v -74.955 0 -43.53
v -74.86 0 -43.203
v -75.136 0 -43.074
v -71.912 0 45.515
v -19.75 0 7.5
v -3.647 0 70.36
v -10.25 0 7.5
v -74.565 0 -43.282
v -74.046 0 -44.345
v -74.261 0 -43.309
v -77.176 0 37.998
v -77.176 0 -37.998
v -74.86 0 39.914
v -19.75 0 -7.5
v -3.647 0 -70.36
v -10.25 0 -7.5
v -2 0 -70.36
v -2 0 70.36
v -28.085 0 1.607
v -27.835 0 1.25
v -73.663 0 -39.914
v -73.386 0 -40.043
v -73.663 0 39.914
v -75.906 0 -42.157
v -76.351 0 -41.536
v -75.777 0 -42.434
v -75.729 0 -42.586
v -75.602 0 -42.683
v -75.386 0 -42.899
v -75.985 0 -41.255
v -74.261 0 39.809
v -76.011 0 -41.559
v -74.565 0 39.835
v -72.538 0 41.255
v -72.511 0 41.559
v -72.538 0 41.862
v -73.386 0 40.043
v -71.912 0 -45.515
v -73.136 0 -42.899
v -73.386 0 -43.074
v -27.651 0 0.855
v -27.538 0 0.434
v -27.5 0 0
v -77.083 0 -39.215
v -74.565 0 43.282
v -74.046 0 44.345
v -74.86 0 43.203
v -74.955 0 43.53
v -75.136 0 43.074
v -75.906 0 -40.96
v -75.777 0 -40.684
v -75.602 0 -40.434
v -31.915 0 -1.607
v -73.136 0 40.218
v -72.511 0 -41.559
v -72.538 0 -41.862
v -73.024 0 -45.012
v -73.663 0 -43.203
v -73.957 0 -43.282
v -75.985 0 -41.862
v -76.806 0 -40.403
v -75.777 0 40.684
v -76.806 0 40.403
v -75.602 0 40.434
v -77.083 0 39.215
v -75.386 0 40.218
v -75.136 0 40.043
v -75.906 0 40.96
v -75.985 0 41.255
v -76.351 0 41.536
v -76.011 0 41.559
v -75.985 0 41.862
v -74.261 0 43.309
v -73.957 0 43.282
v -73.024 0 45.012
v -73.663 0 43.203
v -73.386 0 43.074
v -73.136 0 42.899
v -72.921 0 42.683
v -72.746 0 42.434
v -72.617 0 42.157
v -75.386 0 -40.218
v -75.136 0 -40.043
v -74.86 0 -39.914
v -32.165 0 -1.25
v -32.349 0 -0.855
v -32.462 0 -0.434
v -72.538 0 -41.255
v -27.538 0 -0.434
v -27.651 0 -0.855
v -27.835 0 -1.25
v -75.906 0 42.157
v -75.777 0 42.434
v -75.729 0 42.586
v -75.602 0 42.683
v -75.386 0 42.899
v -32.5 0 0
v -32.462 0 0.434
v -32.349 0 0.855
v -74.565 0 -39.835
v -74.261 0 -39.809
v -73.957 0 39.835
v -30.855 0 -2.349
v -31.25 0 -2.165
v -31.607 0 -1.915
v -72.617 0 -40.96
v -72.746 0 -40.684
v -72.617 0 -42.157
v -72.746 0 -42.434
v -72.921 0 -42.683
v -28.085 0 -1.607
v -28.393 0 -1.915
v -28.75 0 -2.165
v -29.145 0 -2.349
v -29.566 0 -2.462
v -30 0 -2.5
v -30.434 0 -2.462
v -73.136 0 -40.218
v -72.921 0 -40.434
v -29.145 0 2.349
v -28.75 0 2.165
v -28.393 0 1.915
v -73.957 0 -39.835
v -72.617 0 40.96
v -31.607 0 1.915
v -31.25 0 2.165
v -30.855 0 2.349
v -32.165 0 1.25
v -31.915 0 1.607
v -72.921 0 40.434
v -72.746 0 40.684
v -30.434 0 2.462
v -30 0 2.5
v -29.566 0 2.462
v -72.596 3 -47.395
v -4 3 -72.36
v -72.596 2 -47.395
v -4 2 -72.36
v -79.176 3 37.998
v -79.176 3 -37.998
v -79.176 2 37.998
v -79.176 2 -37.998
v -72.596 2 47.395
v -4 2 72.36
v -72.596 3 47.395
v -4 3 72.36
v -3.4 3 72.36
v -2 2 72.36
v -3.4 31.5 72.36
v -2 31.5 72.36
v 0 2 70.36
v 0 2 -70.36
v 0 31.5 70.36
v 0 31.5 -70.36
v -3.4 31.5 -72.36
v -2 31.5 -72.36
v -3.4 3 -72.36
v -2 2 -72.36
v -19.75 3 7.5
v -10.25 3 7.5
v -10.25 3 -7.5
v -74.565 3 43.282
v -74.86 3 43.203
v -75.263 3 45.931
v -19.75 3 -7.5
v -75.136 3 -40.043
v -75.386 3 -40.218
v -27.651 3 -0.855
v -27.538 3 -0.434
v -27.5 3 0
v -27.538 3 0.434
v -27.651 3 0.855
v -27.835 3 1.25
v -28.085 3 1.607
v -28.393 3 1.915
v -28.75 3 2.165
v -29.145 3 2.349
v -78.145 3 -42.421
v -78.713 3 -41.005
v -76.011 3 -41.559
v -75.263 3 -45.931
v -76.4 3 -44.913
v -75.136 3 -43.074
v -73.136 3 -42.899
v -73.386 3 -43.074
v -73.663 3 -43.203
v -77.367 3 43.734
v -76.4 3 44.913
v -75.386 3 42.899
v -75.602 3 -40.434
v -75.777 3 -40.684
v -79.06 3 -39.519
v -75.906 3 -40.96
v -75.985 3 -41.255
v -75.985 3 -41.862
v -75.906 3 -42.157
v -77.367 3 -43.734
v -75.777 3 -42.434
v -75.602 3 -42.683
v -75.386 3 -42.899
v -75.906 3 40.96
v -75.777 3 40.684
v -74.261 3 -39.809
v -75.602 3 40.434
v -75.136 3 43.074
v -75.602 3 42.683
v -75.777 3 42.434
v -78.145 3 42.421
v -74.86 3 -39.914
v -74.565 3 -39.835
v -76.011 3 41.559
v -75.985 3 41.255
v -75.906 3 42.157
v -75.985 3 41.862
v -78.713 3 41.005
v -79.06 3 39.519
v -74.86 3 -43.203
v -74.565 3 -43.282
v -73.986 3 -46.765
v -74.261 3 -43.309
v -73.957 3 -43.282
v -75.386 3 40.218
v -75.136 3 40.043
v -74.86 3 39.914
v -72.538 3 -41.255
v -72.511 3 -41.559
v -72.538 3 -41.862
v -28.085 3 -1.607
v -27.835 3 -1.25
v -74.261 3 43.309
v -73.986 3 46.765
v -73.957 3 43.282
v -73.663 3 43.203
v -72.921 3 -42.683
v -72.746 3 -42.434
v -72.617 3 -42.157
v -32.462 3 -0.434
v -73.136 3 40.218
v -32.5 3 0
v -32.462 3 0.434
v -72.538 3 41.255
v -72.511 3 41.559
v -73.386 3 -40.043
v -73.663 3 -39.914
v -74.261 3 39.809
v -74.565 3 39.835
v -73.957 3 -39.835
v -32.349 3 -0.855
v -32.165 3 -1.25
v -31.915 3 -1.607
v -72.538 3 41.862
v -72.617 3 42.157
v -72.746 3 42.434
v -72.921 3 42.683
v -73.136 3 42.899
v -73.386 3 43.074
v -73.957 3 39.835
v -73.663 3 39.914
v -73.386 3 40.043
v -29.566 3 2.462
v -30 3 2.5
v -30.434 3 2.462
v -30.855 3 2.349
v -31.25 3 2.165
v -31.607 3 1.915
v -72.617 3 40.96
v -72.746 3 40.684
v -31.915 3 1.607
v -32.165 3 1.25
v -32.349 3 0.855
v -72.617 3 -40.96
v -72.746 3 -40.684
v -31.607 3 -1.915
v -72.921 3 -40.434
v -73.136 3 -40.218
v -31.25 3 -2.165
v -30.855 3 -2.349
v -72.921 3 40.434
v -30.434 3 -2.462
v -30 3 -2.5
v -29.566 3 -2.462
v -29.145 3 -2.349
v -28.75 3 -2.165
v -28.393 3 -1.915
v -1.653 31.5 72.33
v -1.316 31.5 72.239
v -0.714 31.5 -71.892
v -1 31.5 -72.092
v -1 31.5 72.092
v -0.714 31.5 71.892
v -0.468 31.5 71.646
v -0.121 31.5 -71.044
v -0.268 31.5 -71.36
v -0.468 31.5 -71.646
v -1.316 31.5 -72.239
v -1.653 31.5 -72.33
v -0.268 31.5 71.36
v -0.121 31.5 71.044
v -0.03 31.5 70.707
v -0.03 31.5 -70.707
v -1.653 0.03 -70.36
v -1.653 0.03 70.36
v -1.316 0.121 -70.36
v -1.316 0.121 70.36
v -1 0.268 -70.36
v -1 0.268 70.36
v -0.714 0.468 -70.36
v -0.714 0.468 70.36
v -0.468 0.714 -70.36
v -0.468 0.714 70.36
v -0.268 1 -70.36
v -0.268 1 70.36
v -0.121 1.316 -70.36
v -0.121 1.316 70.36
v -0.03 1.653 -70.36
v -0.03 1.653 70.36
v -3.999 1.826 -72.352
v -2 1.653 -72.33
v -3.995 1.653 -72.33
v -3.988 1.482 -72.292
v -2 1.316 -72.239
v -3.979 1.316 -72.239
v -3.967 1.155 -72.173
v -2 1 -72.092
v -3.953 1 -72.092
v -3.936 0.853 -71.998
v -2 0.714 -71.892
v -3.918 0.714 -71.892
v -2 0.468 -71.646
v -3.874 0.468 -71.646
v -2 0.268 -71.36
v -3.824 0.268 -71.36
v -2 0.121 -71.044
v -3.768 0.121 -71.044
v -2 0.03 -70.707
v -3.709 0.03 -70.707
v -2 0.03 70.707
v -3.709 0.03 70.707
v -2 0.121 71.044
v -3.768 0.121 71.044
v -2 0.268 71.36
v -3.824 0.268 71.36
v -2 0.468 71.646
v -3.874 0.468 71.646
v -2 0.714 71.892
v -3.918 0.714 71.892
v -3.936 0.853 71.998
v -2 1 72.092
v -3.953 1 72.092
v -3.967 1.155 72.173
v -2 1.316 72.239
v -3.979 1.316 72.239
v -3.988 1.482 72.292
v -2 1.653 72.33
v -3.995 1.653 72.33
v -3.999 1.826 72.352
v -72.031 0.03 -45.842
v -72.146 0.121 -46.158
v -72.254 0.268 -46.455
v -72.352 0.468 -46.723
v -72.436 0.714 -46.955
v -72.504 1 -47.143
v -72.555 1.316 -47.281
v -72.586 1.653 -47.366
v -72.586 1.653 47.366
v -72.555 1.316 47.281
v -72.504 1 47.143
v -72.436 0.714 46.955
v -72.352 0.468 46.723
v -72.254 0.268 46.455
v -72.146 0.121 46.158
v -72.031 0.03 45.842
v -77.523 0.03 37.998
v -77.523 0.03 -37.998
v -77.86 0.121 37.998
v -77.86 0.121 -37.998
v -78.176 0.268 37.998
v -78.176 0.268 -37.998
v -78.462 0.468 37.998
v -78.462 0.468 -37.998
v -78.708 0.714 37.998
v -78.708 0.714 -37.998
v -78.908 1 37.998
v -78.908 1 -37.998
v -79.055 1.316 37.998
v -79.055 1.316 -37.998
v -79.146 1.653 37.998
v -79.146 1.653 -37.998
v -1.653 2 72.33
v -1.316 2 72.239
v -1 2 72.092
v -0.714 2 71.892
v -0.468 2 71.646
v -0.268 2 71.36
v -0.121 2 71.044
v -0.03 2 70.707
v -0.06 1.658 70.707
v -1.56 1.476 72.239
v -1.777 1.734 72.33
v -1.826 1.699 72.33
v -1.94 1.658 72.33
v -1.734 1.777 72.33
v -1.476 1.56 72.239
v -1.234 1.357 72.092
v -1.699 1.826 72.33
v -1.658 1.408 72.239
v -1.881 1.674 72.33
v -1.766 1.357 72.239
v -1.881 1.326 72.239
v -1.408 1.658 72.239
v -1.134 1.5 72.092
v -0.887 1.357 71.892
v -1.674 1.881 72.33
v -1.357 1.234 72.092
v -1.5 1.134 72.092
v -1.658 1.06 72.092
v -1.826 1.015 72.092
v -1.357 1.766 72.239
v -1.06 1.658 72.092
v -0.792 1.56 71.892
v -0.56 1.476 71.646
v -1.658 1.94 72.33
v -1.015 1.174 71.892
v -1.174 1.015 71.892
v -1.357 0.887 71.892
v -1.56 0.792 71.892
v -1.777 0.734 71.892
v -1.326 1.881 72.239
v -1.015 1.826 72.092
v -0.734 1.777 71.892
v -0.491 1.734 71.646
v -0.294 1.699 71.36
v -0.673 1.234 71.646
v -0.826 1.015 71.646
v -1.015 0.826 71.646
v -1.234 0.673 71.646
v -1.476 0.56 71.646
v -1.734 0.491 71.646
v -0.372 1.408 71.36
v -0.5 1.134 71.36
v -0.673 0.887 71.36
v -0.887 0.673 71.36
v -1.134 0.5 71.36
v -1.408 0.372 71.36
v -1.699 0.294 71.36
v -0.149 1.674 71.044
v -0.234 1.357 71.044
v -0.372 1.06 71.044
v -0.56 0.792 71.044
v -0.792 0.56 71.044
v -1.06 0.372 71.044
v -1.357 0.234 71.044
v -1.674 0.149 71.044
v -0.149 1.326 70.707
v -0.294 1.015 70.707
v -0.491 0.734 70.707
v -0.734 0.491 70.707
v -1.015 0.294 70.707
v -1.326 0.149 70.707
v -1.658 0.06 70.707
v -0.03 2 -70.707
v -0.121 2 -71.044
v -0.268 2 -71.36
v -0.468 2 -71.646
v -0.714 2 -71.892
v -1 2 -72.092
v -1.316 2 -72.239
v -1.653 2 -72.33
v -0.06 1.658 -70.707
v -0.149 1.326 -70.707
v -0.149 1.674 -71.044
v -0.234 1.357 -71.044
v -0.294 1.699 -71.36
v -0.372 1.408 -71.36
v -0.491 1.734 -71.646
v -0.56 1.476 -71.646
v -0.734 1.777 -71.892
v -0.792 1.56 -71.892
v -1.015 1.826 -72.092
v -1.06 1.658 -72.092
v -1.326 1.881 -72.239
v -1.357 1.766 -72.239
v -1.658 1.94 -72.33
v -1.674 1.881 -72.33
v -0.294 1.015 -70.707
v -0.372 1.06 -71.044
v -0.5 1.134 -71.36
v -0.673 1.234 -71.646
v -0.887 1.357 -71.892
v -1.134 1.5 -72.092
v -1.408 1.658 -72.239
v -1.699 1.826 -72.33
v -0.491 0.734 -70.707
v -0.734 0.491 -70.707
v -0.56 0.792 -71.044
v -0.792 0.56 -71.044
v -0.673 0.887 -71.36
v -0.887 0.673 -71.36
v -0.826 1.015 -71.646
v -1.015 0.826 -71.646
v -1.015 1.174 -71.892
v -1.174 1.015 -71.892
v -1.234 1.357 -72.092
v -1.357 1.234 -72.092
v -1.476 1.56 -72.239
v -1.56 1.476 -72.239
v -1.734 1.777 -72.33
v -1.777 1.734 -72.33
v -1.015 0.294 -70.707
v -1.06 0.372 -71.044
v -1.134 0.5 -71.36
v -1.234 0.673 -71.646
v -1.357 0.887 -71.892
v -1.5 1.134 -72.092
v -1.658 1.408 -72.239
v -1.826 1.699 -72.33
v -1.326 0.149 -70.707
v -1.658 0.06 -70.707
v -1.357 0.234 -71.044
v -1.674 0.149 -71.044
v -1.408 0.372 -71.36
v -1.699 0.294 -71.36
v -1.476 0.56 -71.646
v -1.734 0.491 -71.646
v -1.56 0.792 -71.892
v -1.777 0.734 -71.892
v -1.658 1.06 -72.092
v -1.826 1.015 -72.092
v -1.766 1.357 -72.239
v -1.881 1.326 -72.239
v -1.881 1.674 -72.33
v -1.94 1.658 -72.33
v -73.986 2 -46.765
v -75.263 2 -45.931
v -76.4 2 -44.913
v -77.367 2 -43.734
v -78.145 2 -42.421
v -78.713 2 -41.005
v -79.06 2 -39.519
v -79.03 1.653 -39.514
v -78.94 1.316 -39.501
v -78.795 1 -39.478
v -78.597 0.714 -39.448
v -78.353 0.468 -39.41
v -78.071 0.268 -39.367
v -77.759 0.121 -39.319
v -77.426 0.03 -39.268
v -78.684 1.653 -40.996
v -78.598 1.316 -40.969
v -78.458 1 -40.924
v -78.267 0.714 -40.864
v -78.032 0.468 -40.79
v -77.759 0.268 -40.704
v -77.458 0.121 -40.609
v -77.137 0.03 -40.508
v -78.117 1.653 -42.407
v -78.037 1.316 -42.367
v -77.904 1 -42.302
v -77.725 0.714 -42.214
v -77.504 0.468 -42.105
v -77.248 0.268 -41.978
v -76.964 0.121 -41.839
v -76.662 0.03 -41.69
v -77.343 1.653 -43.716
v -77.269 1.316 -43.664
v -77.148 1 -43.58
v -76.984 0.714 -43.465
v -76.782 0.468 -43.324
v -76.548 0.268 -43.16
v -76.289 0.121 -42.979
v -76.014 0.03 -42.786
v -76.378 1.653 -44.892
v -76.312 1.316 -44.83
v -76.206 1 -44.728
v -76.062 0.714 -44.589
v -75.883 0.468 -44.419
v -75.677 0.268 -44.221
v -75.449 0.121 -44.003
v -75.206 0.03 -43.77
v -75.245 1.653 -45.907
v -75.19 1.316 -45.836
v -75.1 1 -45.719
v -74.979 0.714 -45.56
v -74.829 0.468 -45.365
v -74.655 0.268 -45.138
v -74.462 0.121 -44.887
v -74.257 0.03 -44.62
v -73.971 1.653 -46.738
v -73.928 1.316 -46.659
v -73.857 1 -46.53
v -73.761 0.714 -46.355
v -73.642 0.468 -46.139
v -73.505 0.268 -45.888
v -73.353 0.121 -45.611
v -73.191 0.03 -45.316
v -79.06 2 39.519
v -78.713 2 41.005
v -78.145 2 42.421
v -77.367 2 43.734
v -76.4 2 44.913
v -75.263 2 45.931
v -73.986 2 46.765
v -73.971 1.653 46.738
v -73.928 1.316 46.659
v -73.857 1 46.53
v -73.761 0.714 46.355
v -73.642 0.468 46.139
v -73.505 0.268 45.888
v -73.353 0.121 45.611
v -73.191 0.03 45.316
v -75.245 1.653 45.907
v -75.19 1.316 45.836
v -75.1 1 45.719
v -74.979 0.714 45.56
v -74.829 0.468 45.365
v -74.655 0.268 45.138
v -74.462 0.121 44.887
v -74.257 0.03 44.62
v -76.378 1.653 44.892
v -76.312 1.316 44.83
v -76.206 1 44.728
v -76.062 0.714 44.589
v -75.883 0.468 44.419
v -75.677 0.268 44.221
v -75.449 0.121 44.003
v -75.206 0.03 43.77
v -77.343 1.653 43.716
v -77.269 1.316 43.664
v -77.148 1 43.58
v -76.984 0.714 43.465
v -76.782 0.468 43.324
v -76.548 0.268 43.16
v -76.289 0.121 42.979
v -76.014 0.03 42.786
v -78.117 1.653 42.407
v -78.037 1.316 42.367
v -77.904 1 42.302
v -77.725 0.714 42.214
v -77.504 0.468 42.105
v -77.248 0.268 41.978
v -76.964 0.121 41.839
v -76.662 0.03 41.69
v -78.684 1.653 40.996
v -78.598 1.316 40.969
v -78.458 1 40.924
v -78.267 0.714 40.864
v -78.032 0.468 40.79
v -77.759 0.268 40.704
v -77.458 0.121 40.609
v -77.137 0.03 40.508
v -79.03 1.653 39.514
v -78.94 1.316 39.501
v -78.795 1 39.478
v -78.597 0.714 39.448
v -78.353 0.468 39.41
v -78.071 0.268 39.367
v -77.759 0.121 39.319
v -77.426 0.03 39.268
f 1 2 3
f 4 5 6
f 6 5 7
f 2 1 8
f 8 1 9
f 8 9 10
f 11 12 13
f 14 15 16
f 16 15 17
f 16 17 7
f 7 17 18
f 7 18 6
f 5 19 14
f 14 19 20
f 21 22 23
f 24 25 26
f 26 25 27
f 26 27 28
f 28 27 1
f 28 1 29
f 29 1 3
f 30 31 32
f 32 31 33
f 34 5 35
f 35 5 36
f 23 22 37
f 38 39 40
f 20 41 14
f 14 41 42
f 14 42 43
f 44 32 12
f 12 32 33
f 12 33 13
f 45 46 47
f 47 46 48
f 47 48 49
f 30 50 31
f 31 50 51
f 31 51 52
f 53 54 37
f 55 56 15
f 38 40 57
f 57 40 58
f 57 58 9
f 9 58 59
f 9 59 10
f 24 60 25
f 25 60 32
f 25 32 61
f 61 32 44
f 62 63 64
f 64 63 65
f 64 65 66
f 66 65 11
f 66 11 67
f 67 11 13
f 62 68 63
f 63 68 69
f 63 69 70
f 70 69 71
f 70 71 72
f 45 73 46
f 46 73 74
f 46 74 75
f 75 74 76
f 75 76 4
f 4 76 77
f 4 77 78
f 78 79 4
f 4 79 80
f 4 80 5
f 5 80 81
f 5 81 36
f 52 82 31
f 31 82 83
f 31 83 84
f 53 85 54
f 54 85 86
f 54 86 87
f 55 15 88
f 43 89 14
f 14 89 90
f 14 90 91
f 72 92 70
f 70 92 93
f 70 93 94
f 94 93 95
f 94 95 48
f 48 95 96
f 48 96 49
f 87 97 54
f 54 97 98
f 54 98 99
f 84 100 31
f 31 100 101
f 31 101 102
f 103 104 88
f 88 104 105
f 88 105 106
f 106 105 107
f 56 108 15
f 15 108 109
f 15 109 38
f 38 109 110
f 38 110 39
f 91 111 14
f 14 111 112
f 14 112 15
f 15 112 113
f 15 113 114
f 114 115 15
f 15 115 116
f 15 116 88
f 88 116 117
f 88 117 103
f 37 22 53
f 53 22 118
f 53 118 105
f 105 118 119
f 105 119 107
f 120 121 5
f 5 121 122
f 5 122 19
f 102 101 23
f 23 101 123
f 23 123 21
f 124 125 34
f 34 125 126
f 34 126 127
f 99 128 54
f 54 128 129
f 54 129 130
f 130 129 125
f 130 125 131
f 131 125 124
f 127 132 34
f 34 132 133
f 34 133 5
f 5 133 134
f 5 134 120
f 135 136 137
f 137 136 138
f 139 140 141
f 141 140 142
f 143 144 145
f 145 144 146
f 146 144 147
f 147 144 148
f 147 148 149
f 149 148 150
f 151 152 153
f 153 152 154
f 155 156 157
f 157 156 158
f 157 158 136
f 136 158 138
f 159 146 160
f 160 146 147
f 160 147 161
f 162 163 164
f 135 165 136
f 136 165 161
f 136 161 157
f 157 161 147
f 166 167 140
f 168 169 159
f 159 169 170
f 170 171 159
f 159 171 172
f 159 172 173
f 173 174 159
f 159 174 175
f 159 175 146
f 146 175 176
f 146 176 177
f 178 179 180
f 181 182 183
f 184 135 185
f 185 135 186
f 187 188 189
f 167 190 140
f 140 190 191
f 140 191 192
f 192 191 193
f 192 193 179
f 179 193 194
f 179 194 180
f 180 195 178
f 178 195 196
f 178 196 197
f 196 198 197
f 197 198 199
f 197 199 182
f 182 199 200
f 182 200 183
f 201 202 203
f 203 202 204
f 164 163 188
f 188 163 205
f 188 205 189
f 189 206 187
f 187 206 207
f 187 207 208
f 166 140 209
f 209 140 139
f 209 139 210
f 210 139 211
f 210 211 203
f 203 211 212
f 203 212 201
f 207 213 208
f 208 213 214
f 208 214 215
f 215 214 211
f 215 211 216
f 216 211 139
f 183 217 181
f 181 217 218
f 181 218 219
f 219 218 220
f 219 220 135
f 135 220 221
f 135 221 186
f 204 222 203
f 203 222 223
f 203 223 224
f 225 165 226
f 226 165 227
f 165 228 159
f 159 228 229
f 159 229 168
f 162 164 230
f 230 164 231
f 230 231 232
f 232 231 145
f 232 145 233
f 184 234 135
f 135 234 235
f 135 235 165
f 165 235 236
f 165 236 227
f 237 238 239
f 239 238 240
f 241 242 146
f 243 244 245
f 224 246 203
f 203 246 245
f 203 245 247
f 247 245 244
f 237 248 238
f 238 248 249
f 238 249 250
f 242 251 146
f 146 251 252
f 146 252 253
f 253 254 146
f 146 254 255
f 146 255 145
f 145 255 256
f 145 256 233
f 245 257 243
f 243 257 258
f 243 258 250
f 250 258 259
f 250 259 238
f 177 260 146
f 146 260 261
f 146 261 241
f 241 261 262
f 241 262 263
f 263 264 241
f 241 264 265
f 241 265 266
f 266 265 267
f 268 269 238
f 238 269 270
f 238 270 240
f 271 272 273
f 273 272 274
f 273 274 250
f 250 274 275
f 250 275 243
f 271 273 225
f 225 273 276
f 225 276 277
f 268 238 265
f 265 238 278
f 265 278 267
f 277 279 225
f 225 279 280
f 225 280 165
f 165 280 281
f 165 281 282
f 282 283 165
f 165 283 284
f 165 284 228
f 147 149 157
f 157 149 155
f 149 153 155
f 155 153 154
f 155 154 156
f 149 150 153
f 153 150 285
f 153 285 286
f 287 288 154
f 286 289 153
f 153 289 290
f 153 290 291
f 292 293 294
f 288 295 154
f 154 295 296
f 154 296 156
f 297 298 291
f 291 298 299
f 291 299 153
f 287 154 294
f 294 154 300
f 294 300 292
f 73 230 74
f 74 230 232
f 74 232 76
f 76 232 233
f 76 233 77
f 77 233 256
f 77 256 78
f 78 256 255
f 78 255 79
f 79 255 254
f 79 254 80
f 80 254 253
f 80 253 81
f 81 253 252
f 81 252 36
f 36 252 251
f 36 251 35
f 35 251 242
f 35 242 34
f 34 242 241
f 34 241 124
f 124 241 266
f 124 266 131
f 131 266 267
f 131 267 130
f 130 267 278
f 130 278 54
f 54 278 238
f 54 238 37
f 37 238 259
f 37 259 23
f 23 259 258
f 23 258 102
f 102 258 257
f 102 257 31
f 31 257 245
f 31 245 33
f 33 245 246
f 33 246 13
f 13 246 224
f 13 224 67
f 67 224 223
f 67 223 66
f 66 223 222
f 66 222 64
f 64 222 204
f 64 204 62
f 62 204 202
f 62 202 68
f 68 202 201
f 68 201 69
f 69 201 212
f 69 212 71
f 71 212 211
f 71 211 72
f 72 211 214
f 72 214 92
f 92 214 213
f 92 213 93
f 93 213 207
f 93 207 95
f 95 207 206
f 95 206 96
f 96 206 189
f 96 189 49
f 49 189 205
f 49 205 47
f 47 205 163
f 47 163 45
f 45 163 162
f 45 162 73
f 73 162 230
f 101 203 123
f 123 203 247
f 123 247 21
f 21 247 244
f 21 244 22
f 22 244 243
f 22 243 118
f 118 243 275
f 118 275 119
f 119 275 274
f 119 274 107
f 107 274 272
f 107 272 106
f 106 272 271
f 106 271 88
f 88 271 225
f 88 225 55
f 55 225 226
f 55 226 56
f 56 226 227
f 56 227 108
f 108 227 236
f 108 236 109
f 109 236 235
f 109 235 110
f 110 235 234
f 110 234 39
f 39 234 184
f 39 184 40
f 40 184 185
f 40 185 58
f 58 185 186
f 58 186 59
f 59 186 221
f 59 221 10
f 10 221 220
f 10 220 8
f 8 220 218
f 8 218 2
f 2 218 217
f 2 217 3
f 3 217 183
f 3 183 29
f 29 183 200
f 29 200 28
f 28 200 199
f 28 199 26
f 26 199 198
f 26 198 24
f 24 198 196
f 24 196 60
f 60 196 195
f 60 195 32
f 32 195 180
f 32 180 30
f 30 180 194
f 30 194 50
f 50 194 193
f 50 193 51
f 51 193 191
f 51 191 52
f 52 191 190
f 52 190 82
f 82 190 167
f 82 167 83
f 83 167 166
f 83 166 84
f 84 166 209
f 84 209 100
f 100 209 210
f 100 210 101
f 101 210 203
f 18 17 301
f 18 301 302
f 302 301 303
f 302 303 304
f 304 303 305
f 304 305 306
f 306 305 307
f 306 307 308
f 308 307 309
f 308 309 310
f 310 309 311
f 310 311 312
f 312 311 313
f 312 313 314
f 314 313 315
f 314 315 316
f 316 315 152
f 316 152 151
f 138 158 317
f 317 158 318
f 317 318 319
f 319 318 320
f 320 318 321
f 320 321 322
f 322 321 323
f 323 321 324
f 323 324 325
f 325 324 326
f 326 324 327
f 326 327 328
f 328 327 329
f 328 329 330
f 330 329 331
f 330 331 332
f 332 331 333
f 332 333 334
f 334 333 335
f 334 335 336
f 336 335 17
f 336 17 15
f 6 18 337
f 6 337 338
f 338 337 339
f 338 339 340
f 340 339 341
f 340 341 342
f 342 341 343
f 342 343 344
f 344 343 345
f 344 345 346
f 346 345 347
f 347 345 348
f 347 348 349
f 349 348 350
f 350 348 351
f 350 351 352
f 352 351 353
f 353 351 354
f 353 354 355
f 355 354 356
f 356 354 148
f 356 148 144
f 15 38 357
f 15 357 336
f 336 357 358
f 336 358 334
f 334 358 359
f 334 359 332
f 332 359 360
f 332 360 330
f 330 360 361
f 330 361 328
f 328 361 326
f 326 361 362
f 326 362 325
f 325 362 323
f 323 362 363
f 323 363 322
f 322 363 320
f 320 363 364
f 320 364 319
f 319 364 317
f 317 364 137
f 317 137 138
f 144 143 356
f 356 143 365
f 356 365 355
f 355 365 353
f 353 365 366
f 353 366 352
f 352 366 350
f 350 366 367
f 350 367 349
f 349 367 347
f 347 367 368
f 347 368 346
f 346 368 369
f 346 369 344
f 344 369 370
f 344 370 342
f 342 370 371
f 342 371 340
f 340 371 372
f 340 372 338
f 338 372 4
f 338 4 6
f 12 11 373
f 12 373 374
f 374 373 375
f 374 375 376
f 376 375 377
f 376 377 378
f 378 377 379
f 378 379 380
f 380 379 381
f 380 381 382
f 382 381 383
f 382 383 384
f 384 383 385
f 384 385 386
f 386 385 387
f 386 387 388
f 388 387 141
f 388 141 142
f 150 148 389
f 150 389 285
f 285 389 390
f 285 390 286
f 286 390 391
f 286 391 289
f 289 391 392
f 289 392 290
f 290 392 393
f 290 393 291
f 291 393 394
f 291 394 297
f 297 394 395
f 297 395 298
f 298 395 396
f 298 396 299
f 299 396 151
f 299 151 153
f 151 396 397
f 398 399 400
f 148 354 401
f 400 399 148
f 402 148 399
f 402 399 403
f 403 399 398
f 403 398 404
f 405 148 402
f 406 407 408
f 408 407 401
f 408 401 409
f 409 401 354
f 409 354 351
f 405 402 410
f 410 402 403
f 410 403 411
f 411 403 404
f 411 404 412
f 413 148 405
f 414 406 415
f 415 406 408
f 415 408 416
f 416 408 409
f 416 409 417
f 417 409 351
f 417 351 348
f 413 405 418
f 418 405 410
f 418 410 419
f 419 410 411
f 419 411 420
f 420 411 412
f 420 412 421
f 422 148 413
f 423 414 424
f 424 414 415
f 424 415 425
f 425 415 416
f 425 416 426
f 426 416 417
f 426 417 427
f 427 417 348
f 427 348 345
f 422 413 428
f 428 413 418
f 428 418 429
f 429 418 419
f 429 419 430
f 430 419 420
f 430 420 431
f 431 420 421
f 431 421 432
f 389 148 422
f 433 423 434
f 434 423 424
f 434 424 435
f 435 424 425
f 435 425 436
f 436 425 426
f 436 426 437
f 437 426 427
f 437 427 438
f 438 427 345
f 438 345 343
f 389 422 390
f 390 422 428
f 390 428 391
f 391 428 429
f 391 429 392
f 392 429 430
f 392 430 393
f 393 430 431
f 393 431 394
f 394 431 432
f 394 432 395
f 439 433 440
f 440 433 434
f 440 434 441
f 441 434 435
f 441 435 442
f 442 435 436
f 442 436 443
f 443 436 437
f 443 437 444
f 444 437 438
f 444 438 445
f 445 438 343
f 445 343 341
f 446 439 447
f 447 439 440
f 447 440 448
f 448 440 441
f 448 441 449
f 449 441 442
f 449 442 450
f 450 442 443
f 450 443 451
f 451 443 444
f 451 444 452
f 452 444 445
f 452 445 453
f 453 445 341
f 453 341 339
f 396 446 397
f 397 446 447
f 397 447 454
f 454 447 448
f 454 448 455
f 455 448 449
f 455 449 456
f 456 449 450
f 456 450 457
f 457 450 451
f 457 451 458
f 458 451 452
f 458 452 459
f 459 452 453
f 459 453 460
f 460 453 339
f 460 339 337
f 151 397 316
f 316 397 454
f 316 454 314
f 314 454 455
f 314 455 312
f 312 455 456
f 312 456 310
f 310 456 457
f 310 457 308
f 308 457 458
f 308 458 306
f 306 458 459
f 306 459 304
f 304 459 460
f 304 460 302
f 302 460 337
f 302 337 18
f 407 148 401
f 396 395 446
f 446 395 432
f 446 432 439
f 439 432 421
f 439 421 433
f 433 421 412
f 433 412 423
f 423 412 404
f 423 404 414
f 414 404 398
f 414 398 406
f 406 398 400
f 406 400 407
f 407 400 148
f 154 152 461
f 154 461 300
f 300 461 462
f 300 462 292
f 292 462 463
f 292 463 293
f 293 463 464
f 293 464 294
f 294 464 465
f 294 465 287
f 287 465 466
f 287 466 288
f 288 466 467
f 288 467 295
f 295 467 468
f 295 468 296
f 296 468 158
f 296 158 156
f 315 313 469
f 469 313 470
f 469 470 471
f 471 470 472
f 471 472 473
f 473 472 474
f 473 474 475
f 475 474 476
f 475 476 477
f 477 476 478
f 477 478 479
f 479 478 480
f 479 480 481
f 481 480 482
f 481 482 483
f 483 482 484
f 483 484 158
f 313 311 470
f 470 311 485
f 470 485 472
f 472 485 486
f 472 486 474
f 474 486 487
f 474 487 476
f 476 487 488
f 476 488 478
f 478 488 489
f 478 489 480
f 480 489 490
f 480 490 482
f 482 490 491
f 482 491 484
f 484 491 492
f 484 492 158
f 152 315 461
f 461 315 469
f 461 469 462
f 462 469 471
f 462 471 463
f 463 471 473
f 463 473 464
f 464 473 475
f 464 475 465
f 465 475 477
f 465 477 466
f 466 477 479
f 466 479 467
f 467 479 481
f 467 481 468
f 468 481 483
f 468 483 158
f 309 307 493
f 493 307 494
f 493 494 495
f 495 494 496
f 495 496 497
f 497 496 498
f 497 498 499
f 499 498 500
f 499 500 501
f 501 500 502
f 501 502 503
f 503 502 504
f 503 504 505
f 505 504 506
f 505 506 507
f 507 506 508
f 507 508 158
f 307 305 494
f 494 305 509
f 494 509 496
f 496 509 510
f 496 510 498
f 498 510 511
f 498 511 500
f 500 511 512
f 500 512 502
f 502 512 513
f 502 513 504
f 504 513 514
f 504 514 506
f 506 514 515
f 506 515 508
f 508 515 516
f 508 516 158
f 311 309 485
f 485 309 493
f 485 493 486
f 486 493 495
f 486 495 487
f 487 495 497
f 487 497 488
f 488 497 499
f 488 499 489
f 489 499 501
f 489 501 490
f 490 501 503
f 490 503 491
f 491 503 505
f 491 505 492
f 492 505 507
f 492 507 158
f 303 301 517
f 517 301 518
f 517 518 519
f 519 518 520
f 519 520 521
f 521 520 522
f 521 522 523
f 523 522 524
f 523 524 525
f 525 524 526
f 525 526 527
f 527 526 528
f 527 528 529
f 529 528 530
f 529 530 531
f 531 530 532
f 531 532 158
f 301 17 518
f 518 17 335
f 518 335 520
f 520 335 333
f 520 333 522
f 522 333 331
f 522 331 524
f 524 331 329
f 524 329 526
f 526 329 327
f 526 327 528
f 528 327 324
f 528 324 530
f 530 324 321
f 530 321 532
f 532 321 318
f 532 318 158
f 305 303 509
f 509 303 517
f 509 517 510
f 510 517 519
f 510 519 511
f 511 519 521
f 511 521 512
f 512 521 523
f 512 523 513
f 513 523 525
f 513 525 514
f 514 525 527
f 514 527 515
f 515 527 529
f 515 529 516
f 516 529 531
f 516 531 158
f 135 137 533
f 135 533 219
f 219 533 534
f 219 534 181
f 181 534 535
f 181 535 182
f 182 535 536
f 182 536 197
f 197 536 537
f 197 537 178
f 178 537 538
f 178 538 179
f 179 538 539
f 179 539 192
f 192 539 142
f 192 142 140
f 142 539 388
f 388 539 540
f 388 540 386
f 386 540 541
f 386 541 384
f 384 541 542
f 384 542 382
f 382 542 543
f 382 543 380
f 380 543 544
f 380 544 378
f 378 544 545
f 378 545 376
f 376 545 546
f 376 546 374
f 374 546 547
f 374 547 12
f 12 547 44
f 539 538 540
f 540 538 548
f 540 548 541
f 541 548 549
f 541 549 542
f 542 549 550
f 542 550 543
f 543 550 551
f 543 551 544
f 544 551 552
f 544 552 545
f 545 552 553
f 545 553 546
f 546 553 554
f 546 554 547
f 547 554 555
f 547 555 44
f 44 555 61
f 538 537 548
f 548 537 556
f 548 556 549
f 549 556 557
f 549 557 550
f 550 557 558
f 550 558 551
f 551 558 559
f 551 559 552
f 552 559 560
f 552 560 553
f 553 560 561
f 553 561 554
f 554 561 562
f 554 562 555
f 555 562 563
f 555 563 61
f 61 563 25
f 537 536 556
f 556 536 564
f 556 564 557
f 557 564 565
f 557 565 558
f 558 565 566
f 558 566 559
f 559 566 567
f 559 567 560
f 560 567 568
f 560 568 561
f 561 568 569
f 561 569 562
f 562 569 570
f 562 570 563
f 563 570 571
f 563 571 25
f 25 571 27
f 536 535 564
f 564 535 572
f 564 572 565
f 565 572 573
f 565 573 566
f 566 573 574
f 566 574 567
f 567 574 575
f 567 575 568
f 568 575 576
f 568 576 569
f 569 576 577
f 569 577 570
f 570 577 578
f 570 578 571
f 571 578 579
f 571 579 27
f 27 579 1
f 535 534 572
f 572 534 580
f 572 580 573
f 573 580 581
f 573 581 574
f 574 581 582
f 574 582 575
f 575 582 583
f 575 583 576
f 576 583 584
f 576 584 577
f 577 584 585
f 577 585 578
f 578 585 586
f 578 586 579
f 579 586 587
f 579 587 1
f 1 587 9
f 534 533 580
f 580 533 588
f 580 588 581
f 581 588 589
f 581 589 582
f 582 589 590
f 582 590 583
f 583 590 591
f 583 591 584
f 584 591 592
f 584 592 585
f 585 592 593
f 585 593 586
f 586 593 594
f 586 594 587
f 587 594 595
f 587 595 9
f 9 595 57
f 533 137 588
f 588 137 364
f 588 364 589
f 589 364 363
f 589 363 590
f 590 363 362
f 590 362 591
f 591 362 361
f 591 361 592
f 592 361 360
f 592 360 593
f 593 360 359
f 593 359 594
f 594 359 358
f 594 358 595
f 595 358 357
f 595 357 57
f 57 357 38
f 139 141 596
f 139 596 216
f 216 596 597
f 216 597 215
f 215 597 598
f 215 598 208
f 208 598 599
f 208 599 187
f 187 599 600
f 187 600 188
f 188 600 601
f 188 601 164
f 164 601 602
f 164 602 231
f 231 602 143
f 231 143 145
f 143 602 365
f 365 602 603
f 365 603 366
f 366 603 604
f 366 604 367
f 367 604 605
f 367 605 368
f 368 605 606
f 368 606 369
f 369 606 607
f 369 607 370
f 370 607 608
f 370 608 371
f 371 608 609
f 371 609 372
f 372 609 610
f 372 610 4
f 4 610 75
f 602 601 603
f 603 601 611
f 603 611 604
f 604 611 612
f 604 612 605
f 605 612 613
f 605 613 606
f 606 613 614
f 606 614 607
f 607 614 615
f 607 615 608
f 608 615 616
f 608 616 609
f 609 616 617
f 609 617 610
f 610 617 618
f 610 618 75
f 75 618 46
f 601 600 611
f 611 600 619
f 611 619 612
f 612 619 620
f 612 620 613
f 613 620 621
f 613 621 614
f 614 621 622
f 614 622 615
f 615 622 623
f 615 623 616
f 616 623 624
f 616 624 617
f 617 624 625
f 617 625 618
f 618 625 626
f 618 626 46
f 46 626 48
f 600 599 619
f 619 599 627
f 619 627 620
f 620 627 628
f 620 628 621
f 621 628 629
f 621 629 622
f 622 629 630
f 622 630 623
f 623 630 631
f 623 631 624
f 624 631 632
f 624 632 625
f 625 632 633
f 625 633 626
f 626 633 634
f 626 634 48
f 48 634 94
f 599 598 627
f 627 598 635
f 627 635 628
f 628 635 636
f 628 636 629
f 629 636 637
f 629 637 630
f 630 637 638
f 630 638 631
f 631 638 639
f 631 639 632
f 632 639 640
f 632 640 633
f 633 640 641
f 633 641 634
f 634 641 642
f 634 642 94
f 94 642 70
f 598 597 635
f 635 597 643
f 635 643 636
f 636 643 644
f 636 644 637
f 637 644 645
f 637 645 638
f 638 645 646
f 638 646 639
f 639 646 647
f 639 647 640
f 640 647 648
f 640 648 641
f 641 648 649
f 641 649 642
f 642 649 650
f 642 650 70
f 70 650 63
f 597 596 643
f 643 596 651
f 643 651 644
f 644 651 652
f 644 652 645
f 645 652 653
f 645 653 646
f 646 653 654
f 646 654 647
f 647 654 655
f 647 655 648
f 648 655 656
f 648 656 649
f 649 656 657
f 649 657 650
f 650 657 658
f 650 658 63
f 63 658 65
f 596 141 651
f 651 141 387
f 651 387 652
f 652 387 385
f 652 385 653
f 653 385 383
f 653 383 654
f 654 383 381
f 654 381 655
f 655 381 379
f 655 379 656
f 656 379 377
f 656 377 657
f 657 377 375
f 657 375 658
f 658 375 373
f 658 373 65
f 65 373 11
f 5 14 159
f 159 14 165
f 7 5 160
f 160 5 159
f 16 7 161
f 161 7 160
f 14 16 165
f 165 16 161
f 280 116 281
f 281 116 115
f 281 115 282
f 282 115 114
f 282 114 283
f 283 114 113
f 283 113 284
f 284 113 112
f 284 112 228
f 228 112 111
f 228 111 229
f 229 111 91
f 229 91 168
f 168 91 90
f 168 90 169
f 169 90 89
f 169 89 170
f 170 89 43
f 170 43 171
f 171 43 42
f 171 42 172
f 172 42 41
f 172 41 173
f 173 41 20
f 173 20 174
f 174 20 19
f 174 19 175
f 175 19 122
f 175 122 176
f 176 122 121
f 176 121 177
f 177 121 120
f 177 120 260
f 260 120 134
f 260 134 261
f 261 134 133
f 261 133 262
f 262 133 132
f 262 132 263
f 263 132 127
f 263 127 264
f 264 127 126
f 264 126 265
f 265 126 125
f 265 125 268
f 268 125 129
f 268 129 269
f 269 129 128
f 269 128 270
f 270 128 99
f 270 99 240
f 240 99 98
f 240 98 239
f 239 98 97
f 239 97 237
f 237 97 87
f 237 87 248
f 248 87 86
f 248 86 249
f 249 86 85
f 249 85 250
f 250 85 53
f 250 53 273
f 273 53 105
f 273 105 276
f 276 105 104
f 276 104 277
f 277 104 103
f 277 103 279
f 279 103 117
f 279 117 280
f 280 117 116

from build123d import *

# Parameters (mm, degrees)
BOSS_EXTRUDE1_DEPTH     = 3
SKETCH2_W               = 3.3999999999999995
SKETCH2_H               = 144.72
BOSS_EXTRUDE2_DEPTH     = 31.5
SKETCH3_R               = 1.749999999999997
CUT_EXTRUDE1_DEPTH      = 40
FILLET1_R               = 2
FILLET2_R               = 2
CONG_1_R                = 10
ESQUISSE2_R             = 2.500000000000002
ENL_V_MAT_EXTRU_1_DEPTH = 10


with BuildPart() as part:
    # Sketch1 → Boss-Extrude1 (new body)
    with BuildSketch(Plane(origin=(0, 0, 0), x_dir=(1, 0, 0), z_dir=(0, 1, 0))):
        Polygon((-79.17599616899001, 45), (-79.17599616899001, -45), (-4, -72.36), (0, -72.36), (0, 72.36), (-4, 72.36), align=None)
    extrude(amount=BOSS_EXTRUDE1_DEPTH)

    # Sketch2 → Boss-Extrude2 (add)
    with BuildSketch(Plane.XZ):
        with Locations((-1.6999999999999997, 0)):
            Rectangle(SKETCH2_W, SKETCH2_H)
    extrude(amount=-BOSS_EXTRUDE2_DEPTH)

    # Sketch3 → Cut-Extrude1 (cut)
    with BuildSketch(Plane(origin=(0, 3, 0), x_dir=(1, 0, 0), z_dir=(0, 1, 0))):
        with Locations(Location((-74.2610839032561, -41.5585413818937, 0), (0, 0, 270))):
            Circle(SKETCH3_R)
        with Locations(Location((-74.26108390325611, 41.55854138189368, 0), (0, 0, 270))):
            Circle(SKETCH3_R)
    extrude(amount=-CUT_EXTRUDE1_DEPTH, mode=Mode.SUBTRACT)

    # Fillet1
    fillet1_edges = [part.edges().sort_by_distance(p)[0] for p in [
        (-2, 0, -72.36),
        (0, 0, 0),
        (-2, 0, 72.36),
        (-41.587998084495005, 0, 58.68),
        (-79.17599616899001, 0, 0),
        (-41.587998084495005, 0, -58.68),
    ]]
    fillet(fillet1_edges, radius=FILLET1_R)

    # Fillet2
    # the kernel refuses this fillet: 2 mm, written as the material it takes off along each edge
    with BuildSketch(Plane(origin=(-2, 2, -70.36), x_dir=(1, 0, 0), z_dir=(0, 0, -1))) as fillet2_piece_1_section:
        Polygon((0, 0), (FILLET2_R, 0), (FILLET2_R, FILLET2_R), (0, FILLET2_R), align=None)
    fillet2_piece_1 = extrude(amount=FILLET2_R, mode=Mode.PRIVATE)
    fillet2_piece_1 = fillet2_piece_1 - Plane(origin=(-2, 2, -70.36), x_dir=(-0.7071067811865475, 0.7071067811865475, 0), z_dir=(0, 0, -1)) * Sphere(FILLET2_R, mode=Mode.PRIVATE)
    add(fillet2_piece_1, mode=Mode.SUBTRACT)
    with BuildSketch(Plane(origin=(-2, 2, 70.36), x_dir=(1, 0, 0), z_dir=(0, 0, 1))) as fillet2_piece_2_section:
        Polygon((0, 0), (FILLET2_R, 0), (FILLET2_R, -FILLET2_R), (0, -FILLET2_R), align=None)
    fillet2_piece_2 = extrude(amount=FILLET2_R, mode=Mode.PRIVATE)
    fillet2_piece_2 = fillet2_piece_2 - Plane(origin=(-2, 2, 70.36), x_dir=(-0.7071067811865475, 0.7071067811865475, 0), z_dir=(0, 0, 1)) * Sphere(FILLET2_R, mode=Mode.PRIVATE)
    add(fillet2_piece_2, mode=Mode.SUBTRACT)
    with BuildSketch(Plane(origin=(0, 36.5, -72.36), x_dir=(-1, 0, 0), z_dir=(0, -1, 0))) as fillet2_piece_3:
        with BuildLine():
            CenterArc((FILLET2_R, -FILLET2_R), FILLET2_R, 90, 90)
            Line((-2.2e-16, -FILLET2_R), (0, 0))
            Line((0, 0), (FILLET2_R, 0))
        make_face()
    extrude(amount=34.5, mode=Mode.SUBTRACT)
    with BuildSketch(Plane(origin=(0, 1.9999999999999993, 72.36), x_dir=(-1, 0, 0), z_dir=(0, 1, 0))) as fillet2_piece_4:
        with BuildLine():
            CenterArc((FILLET2_R, -FILLET2_R), FILLET2_R, 90, 90)
            Line((0, -FILLET2_R), (0, 0))
            Line((0, 0), (FILLET2_R, 0))
        make_face()
    extrude(amount=34.5, mode=Mode.SUBTRACT)

    # Congé1
    # the kernel refuses this fillet: 10 mm, written as the material it takes off along each edge
    with BuildSketch(Plane(origin=(-69.17599616899001, 0, -37.99776488738916), x_dir=(-1, 0, 0), z_dir=(0, 0, 1))) as cong_1_piece_1:
        with BuildLine():
            CenterArc((8, -2), 2, 0, 90)
            Line((10, -2), (10, 0))
            Line((10, 0), (8, 0))
        make_face()
    revolve(axis=Axis((-69.17599616899001, 0, -37.99776488738916), (0, -1, 0)), revolution_arc=70.00122819209012, mode=Mode.SUBTRACT)
    with BuildSketch(Plane(origin=(-69.17599616899001, 0, 37.99776488738917), x_dir=(-0.34199999999999997, 0, 0.9396999521123751), z_dir=(0.9396999521123751, 0, 0.34199999999999997))) as cong_1_piece_2:
        with BuildLine():
            CenterArc((8, -2), 2, 0, 90)
            Line((10, -2), (10, 0))
            Line((10, 0), (8, 0))
        make_face()
    revolve(axis=Axis((-69.17599616899001, 0, 37.99776488738917), (0, -1, 0)), revolution_arc=70.00122819209012, mode=Mode.SUBTRACT)
    with BuildSketch(Plane(origin=(-79.17599616899001, -4.4e-16, 45), x_dir=(0, 0, -1), z_dir=(0, 1, 0))) as cong_1_piece_3:
        with BuildLine():
            CenterArc((CONG_1_R * 0.700223511261, -CONG_1_R), CONG_1_R, 90, 70.00122819209011)
            Line((-CONG_1_R * 0.239476440851, -CONG_1_R * 0.658), (0, 0))
            Line((0, 0), (CONG_1_R * 0.700223511261, 0))
        make_face()
    extrude(amount=20.505587781527105, mode=Mode.SUBTRACT)
    with BuildSketch(Plane(origin=(-79.17599616899001, -4.4e-16, -45), x_dir=(0, 0, 1), z_dir=(0, 1, 0))) as cong_1_piece_4:
        with BuildLine():
            CenterArc((CONG_1_R * 0.700223511261, CONG_1_R), CONG_1_R, 199.99877180790997, 70.00122819209003)
            Line((-CONG_1_R * 0.239476440851, CONG_1_R * 0.658), (0, 0))
            Line((0, 0), (CONG_1_R * 0.700223511261, 0))
        make_face()
    extrude(amount=20.5055877815271, mode=Mode.SUBTRACT)

    # Esquisse2 → Enlèv. mat.-Extru.1 (cut)
    with BuildSketch(Plane.XZ):
        with Locations(Location((-30, -3.67e-15, 0), (0, 0, 270))):
            Circle(ESQUISSE2_R)
        Polygon((-10.25, 7.499999999999999), (-19.75, 7.499999999999999), (-19.749999999999996, -7.500000000000002), (-10.249999999999998, -7.500000000000001), align=None)
    extrude(amount=-ENL_V_MAT_EXTRU_1_DEPTH, mode=Mode.SUBTRACT)


solid = part.part
